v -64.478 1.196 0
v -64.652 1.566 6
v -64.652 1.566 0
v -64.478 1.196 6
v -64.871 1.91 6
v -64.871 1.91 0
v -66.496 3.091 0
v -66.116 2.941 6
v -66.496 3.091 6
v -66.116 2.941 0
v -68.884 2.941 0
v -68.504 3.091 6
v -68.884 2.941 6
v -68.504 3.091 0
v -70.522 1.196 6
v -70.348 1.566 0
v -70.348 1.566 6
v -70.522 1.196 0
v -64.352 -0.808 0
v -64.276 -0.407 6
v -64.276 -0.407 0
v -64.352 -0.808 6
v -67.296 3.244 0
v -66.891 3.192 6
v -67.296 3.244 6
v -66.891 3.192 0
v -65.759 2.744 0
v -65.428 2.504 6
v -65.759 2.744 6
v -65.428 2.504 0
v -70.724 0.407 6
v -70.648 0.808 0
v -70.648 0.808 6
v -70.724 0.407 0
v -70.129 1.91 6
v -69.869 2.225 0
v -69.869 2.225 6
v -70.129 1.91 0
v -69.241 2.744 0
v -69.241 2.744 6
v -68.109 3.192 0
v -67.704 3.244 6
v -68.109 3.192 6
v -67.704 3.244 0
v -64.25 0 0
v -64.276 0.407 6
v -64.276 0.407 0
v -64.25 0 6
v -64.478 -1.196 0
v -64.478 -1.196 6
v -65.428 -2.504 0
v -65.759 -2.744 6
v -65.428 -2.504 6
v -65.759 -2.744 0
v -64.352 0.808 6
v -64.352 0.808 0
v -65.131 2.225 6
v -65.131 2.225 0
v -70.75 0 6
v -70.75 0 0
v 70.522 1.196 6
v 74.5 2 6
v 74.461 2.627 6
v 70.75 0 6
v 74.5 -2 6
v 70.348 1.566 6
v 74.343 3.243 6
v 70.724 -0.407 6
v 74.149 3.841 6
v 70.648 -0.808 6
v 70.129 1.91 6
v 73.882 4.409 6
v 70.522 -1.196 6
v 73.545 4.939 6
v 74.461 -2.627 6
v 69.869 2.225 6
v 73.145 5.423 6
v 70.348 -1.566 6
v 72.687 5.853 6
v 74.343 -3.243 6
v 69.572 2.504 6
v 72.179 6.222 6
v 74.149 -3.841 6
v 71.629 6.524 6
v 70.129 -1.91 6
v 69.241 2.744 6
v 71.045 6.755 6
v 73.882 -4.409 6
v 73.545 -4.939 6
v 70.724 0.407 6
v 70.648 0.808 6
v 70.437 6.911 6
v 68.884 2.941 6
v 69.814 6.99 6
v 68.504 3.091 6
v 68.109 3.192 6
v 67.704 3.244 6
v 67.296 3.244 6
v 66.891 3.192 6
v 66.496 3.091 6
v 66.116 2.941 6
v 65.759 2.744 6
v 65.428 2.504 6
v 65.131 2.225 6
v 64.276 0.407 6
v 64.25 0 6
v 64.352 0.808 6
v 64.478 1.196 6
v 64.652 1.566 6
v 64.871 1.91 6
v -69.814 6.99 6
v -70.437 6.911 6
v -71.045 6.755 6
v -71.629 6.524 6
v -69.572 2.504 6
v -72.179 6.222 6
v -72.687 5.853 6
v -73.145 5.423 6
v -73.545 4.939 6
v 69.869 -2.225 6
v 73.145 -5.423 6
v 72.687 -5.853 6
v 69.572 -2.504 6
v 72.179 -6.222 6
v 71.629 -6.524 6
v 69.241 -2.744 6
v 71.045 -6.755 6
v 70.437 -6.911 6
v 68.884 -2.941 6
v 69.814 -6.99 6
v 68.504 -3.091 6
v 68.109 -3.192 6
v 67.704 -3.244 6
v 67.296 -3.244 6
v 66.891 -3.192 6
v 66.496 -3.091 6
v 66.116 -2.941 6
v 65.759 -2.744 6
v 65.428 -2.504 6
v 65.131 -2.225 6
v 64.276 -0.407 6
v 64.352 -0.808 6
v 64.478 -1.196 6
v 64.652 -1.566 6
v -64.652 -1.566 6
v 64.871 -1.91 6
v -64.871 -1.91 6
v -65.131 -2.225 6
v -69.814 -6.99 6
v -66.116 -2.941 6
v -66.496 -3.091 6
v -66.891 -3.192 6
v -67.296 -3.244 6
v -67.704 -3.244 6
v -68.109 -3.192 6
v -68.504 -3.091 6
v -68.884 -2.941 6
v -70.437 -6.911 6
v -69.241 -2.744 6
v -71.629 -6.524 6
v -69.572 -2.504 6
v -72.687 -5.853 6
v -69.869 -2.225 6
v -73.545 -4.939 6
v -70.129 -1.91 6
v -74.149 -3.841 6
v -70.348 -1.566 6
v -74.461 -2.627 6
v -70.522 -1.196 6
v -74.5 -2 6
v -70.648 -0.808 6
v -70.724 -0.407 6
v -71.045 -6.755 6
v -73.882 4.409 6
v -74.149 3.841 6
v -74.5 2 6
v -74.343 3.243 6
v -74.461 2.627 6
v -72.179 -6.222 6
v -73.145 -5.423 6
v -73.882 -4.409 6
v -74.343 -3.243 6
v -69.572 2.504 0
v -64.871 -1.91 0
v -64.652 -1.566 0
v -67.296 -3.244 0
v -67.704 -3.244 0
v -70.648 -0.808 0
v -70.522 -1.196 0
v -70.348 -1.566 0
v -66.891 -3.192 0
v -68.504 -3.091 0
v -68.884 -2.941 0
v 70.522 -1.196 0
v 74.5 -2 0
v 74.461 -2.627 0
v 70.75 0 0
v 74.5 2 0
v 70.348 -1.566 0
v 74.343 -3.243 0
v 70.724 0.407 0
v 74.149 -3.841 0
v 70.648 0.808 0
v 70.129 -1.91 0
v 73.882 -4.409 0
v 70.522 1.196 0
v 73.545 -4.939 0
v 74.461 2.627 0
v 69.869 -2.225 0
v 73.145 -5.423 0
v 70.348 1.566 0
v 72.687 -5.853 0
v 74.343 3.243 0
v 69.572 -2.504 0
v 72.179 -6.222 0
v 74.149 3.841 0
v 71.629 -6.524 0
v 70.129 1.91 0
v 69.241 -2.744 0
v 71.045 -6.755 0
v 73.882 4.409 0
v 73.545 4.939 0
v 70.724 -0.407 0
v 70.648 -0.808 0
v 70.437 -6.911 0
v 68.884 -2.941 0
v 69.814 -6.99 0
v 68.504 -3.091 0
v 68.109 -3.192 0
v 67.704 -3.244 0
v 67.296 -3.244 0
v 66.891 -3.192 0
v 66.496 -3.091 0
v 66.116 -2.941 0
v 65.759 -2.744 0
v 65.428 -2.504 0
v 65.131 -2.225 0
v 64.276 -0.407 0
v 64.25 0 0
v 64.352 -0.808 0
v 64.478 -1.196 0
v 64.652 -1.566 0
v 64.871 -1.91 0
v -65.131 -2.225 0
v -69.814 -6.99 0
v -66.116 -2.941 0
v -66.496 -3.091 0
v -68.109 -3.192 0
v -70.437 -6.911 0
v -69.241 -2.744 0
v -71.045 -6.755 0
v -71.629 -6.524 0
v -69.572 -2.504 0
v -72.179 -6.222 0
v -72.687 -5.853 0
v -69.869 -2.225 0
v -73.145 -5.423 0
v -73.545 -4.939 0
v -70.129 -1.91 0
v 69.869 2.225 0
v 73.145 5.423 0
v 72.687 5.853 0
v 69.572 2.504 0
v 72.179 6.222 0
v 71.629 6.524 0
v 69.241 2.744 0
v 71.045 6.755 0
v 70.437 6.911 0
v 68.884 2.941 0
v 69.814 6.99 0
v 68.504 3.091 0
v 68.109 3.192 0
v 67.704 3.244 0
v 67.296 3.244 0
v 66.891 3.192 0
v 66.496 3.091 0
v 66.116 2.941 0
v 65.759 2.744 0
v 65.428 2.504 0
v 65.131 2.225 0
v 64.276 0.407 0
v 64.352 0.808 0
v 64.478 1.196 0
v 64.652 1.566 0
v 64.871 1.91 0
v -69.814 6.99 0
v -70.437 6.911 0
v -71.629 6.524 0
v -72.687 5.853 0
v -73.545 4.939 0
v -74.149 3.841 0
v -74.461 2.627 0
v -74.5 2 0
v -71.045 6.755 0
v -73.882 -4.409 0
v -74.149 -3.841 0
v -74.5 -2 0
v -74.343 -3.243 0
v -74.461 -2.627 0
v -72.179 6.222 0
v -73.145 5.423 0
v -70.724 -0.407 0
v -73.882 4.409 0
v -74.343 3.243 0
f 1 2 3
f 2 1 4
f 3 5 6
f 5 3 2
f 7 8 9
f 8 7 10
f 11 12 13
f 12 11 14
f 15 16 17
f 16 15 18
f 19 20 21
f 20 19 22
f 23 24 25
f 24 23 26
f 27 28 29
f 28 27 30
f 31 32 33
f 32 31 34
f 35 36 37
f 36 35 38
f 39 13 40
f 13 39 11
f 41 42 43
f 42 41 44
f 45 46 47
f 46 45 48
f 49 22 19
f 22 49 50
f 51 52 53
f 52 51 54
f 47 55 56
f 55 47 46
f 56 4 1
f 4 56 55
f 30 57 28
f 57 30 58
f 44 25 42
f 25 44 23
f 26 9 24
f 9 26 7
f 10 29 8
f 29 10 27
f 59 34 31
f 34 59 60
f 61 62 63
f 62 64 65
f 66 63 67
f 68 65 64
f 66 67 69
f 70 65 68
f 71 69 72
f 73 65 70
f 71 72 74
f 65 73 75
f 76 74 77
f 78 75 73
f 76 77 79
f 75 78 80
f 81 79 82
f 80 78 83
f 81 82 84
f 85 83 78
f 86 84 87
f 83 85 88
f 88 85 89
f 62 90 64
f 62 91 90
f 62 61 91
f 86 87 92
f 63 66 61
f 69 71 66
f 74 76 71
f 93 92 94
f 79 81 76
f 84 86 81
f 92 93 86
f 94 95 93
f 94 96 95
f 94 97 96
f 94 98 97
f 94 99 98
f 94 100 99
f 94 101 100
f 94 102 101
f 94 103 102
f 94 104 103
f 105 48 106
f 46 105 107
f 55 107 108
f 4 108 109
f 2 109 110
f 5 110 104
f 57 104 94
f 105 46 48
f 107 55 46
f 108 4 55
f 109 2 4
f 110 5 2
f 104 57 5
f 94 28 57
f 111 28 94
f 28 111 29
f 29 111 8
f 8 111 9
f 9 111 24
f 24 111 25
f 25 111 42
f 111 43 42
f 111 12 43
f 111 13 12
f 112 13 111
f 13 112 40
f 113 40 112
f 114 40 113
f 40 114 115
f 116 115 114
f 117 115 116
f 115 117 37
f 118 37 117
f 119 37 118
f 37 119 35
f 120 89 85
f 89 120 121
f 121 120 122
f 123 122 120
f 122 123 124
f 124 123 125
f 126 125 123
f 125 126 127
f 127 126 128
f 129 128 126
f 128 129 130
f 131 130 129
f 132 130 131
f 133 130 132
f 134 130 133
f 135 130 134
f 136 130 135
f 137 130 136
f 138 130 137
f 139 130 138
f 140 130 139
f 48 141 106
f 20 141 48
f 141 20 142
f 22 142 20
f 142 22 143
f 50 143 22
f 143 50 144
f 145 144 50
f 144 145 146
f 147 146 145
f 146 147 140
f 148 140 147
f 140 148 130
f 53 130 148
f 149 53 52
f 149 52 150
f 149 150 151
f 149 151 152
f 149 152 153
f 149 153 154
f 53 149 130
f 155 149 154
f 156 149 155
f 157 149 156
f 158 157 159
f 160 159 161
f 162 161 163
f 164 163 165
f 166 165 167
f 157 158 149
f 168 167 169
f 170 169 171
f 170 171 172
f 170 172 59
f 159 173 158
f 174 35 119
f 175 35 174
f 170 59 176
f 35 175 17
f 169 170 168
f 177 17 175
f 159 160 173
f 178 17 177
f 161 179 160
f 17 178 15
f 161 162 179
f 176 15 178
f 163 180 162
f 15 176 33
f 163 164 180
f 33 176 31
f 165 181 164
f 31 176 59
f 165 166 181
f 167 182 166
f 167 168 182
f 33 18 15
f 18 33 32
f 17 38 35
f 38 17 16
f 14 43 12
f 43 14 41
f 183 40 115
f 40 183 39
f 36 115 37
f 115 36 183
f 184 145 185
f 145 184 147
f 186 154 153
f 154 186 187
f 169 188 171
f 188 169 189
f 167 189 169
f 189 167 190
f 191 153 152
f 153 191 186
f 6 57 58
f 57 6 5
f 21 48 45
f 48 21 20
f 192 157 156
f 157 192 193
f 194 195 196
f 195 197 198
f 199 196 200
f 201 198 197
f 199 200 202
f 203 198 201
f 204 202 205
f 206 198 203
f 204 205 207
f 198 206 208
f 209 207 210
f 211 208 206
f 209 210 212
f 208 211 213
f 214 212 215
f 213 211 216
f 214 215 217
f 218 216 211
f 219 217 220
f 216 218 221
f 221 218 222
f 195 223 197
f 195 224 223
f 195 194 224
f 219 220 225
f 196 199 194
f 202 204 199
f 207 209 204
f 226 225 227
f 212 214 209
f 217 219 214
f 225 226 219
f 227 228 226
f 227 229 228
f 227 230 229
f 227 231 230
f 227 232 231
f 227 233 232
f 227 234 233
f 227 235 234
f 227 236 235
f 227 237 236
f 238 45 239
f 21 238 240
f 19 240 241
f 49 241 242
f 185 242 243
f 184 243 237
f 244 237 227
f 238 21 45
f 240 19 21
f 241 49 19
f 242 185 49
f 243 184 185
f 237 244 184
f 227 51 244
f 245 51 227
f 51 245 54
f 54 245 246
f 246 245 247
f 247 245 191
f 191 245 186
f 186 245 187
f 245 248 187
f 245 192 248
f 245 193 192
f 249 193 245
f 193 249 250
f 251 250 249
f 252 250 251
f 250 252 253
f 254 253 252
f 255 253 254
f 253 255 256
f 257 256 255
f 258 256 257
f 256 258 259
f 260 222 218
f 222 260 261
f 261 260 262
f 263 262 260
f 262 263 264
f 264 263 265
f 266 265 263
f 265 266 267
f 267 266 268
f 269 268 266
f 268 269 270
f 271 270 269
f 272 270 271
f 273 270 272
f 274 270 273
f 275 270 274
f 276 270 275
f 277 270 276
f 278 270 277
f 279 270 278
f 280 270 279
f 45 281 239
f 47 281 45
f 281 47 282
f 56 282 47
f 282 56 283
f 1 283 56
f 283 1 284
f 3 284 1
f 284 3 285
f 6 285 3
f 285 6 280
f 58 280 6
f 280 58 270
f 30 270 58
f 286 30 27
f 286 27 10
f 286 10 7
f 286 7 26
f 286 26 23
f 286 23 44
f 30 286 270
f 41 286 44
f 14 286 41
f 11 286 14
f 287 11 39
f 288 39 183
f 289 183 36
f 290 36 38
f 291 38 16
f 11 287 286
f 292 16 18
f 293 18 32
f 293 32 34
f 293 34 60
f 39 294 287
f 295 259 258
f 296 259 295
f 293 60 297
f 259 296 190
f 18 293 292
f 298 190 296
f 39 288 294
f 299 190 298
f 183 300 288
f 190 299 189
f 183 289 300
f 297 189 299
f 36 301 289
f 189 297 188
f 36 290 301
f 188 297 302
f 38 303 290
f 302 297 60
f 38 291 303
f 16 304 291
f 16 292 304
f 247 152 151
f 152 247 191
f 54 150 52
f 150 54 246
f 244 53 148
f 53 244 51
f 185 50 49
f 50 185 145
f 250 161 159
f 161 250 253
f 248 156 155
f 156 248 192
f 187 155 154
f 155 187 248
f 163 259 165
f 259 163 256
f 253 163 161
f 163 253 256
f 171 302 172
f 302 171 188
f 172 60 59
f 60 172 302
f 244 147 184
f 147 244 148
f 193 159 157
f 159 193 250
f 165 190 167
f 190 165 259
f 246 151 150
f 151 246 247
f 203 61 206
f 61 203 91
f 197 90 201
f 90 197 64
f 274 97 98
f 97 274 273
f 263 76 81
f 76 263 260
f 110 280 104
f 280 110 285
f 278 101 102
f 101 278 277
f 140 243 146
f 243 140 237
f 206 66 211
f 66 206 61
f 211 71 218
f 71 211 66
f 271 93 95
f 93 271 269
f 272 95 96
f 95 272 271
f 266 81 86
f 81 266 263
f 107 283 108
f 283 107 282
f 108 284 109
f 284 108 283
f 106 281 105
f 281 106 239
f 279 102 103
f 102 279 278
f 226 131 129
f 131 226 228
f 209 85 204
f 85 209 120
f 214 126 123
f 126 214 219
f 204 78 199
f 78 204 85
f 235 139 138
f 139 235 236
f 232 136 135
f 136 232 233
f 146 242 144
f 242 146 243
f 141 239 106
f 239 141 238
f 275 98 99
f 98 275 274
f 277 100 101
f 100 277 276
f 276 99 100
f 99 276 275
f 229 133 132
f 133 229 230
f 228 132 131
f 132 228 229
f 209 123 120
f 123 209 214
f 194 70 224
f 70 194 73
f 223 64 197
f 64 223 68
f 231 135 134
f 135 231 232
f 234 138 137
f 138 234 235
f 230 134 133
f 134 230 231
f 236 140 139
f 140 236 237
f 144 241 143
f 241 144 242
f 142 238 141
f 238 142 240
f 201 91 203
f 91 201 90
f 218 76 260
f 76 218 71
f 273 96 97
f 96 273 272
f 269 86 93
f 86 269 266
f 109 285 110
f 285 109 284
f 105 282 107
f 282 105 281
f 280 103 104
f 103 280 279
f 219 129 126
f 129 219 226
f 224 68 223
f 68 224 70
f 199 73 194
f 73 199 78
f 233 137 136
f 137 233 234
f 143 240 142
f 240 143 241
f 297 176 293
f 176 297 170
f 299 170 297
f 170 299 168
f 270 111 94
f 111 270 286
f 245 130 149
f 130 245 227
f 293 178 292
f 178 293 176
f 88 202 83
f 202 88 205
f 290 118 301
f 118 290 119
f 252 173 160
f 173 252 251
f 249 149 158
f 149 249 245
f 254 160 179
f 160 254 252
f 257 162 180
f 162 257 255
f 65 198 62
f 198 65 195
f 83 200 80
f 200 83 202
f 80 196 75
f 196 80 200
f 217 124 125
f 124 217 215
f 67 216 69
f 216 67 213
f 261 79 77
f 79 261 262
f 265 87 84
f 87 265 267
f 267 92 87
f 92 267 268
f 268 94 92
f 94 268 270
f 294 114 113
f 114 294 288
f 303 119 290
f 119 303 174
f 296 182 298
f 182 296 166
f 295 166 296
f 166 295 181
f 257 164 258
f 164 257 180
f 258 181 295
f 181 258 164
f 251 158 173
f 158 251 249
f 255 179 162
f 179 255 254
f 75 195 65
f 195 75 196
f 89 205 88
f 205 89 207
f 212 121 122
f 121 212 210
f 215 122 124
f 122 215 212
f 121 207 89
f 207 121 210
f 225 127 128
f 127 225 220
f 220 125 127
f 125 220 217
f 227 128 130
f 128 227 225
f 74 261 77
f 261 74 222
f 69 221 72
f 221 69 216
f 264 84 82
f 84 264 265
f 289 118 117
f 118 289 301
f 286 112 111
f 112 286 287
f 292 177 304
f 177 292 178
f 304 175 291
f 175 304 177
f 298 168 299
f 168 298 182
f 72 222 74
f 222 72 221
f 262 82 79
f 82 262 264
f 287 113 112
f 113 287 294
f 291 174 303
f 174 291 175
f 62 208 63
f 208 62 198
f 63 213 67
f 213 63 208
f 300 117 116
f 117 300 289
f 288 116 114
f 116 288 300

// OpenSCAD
$fn = 50;


difference() {
	union() {
		hull() {
			translate(v = [-69.5000000000, 2.0000000000, 0]) {
				cylinder(h = 6, r = 5);
			}
			translate(v = [69.5000000000, 2.0000000000, 0]) {
				cylinder(h = 6, r = 5);
			}
			translate(v = [-69.5000000000, -2.0000000000, 0]) {
				cylinder(h = 6, r = 5);
			}
			translate(v = [69.5000000000, -2.0000000000, 0]) {
				cylinder(h = 6, r = 5);
			}
		}
	}
	union() {
		translate(v = [-67.5000000000, 0.0000000000, 0]) {
			cylinder(h = 6, r = 3.2500000000);
		}
		translate(v = [67.5000000000, 0.0000000000, 0]) {
			cylinder(h = 6, r = 3.2500000000);
		}
		translate(v = [-67.5000000000, 0.0000000000, 0]) {
			cylinder(h = 6, r = 1.8000000000);
		}
		translate(v = [67.5000000000, 0.0000000000, 0]) {
			cylinder(h = 6, r = 1.8000000000);
		}
		translate(v = [-67.5000000000, 0.0000000000, 0]) {
			cylinder(h = 6, r = 1.8000000000);
		}
		translate(v = [67.5000000000, 0.0000000000, 0]) {
			cylinder(h = 6, r = 1.8000000000);
		}
		translate(v = [-67.5000000000, 0.0000000000, 0]) {
			cylinder(h = 6, r = 1.8000000000);
		}
		translate(v = [67.5000000000, 0.0000000000, 0]) {
			cylinder(h = 6, r = 1.8000000000);
		}
	}
}
